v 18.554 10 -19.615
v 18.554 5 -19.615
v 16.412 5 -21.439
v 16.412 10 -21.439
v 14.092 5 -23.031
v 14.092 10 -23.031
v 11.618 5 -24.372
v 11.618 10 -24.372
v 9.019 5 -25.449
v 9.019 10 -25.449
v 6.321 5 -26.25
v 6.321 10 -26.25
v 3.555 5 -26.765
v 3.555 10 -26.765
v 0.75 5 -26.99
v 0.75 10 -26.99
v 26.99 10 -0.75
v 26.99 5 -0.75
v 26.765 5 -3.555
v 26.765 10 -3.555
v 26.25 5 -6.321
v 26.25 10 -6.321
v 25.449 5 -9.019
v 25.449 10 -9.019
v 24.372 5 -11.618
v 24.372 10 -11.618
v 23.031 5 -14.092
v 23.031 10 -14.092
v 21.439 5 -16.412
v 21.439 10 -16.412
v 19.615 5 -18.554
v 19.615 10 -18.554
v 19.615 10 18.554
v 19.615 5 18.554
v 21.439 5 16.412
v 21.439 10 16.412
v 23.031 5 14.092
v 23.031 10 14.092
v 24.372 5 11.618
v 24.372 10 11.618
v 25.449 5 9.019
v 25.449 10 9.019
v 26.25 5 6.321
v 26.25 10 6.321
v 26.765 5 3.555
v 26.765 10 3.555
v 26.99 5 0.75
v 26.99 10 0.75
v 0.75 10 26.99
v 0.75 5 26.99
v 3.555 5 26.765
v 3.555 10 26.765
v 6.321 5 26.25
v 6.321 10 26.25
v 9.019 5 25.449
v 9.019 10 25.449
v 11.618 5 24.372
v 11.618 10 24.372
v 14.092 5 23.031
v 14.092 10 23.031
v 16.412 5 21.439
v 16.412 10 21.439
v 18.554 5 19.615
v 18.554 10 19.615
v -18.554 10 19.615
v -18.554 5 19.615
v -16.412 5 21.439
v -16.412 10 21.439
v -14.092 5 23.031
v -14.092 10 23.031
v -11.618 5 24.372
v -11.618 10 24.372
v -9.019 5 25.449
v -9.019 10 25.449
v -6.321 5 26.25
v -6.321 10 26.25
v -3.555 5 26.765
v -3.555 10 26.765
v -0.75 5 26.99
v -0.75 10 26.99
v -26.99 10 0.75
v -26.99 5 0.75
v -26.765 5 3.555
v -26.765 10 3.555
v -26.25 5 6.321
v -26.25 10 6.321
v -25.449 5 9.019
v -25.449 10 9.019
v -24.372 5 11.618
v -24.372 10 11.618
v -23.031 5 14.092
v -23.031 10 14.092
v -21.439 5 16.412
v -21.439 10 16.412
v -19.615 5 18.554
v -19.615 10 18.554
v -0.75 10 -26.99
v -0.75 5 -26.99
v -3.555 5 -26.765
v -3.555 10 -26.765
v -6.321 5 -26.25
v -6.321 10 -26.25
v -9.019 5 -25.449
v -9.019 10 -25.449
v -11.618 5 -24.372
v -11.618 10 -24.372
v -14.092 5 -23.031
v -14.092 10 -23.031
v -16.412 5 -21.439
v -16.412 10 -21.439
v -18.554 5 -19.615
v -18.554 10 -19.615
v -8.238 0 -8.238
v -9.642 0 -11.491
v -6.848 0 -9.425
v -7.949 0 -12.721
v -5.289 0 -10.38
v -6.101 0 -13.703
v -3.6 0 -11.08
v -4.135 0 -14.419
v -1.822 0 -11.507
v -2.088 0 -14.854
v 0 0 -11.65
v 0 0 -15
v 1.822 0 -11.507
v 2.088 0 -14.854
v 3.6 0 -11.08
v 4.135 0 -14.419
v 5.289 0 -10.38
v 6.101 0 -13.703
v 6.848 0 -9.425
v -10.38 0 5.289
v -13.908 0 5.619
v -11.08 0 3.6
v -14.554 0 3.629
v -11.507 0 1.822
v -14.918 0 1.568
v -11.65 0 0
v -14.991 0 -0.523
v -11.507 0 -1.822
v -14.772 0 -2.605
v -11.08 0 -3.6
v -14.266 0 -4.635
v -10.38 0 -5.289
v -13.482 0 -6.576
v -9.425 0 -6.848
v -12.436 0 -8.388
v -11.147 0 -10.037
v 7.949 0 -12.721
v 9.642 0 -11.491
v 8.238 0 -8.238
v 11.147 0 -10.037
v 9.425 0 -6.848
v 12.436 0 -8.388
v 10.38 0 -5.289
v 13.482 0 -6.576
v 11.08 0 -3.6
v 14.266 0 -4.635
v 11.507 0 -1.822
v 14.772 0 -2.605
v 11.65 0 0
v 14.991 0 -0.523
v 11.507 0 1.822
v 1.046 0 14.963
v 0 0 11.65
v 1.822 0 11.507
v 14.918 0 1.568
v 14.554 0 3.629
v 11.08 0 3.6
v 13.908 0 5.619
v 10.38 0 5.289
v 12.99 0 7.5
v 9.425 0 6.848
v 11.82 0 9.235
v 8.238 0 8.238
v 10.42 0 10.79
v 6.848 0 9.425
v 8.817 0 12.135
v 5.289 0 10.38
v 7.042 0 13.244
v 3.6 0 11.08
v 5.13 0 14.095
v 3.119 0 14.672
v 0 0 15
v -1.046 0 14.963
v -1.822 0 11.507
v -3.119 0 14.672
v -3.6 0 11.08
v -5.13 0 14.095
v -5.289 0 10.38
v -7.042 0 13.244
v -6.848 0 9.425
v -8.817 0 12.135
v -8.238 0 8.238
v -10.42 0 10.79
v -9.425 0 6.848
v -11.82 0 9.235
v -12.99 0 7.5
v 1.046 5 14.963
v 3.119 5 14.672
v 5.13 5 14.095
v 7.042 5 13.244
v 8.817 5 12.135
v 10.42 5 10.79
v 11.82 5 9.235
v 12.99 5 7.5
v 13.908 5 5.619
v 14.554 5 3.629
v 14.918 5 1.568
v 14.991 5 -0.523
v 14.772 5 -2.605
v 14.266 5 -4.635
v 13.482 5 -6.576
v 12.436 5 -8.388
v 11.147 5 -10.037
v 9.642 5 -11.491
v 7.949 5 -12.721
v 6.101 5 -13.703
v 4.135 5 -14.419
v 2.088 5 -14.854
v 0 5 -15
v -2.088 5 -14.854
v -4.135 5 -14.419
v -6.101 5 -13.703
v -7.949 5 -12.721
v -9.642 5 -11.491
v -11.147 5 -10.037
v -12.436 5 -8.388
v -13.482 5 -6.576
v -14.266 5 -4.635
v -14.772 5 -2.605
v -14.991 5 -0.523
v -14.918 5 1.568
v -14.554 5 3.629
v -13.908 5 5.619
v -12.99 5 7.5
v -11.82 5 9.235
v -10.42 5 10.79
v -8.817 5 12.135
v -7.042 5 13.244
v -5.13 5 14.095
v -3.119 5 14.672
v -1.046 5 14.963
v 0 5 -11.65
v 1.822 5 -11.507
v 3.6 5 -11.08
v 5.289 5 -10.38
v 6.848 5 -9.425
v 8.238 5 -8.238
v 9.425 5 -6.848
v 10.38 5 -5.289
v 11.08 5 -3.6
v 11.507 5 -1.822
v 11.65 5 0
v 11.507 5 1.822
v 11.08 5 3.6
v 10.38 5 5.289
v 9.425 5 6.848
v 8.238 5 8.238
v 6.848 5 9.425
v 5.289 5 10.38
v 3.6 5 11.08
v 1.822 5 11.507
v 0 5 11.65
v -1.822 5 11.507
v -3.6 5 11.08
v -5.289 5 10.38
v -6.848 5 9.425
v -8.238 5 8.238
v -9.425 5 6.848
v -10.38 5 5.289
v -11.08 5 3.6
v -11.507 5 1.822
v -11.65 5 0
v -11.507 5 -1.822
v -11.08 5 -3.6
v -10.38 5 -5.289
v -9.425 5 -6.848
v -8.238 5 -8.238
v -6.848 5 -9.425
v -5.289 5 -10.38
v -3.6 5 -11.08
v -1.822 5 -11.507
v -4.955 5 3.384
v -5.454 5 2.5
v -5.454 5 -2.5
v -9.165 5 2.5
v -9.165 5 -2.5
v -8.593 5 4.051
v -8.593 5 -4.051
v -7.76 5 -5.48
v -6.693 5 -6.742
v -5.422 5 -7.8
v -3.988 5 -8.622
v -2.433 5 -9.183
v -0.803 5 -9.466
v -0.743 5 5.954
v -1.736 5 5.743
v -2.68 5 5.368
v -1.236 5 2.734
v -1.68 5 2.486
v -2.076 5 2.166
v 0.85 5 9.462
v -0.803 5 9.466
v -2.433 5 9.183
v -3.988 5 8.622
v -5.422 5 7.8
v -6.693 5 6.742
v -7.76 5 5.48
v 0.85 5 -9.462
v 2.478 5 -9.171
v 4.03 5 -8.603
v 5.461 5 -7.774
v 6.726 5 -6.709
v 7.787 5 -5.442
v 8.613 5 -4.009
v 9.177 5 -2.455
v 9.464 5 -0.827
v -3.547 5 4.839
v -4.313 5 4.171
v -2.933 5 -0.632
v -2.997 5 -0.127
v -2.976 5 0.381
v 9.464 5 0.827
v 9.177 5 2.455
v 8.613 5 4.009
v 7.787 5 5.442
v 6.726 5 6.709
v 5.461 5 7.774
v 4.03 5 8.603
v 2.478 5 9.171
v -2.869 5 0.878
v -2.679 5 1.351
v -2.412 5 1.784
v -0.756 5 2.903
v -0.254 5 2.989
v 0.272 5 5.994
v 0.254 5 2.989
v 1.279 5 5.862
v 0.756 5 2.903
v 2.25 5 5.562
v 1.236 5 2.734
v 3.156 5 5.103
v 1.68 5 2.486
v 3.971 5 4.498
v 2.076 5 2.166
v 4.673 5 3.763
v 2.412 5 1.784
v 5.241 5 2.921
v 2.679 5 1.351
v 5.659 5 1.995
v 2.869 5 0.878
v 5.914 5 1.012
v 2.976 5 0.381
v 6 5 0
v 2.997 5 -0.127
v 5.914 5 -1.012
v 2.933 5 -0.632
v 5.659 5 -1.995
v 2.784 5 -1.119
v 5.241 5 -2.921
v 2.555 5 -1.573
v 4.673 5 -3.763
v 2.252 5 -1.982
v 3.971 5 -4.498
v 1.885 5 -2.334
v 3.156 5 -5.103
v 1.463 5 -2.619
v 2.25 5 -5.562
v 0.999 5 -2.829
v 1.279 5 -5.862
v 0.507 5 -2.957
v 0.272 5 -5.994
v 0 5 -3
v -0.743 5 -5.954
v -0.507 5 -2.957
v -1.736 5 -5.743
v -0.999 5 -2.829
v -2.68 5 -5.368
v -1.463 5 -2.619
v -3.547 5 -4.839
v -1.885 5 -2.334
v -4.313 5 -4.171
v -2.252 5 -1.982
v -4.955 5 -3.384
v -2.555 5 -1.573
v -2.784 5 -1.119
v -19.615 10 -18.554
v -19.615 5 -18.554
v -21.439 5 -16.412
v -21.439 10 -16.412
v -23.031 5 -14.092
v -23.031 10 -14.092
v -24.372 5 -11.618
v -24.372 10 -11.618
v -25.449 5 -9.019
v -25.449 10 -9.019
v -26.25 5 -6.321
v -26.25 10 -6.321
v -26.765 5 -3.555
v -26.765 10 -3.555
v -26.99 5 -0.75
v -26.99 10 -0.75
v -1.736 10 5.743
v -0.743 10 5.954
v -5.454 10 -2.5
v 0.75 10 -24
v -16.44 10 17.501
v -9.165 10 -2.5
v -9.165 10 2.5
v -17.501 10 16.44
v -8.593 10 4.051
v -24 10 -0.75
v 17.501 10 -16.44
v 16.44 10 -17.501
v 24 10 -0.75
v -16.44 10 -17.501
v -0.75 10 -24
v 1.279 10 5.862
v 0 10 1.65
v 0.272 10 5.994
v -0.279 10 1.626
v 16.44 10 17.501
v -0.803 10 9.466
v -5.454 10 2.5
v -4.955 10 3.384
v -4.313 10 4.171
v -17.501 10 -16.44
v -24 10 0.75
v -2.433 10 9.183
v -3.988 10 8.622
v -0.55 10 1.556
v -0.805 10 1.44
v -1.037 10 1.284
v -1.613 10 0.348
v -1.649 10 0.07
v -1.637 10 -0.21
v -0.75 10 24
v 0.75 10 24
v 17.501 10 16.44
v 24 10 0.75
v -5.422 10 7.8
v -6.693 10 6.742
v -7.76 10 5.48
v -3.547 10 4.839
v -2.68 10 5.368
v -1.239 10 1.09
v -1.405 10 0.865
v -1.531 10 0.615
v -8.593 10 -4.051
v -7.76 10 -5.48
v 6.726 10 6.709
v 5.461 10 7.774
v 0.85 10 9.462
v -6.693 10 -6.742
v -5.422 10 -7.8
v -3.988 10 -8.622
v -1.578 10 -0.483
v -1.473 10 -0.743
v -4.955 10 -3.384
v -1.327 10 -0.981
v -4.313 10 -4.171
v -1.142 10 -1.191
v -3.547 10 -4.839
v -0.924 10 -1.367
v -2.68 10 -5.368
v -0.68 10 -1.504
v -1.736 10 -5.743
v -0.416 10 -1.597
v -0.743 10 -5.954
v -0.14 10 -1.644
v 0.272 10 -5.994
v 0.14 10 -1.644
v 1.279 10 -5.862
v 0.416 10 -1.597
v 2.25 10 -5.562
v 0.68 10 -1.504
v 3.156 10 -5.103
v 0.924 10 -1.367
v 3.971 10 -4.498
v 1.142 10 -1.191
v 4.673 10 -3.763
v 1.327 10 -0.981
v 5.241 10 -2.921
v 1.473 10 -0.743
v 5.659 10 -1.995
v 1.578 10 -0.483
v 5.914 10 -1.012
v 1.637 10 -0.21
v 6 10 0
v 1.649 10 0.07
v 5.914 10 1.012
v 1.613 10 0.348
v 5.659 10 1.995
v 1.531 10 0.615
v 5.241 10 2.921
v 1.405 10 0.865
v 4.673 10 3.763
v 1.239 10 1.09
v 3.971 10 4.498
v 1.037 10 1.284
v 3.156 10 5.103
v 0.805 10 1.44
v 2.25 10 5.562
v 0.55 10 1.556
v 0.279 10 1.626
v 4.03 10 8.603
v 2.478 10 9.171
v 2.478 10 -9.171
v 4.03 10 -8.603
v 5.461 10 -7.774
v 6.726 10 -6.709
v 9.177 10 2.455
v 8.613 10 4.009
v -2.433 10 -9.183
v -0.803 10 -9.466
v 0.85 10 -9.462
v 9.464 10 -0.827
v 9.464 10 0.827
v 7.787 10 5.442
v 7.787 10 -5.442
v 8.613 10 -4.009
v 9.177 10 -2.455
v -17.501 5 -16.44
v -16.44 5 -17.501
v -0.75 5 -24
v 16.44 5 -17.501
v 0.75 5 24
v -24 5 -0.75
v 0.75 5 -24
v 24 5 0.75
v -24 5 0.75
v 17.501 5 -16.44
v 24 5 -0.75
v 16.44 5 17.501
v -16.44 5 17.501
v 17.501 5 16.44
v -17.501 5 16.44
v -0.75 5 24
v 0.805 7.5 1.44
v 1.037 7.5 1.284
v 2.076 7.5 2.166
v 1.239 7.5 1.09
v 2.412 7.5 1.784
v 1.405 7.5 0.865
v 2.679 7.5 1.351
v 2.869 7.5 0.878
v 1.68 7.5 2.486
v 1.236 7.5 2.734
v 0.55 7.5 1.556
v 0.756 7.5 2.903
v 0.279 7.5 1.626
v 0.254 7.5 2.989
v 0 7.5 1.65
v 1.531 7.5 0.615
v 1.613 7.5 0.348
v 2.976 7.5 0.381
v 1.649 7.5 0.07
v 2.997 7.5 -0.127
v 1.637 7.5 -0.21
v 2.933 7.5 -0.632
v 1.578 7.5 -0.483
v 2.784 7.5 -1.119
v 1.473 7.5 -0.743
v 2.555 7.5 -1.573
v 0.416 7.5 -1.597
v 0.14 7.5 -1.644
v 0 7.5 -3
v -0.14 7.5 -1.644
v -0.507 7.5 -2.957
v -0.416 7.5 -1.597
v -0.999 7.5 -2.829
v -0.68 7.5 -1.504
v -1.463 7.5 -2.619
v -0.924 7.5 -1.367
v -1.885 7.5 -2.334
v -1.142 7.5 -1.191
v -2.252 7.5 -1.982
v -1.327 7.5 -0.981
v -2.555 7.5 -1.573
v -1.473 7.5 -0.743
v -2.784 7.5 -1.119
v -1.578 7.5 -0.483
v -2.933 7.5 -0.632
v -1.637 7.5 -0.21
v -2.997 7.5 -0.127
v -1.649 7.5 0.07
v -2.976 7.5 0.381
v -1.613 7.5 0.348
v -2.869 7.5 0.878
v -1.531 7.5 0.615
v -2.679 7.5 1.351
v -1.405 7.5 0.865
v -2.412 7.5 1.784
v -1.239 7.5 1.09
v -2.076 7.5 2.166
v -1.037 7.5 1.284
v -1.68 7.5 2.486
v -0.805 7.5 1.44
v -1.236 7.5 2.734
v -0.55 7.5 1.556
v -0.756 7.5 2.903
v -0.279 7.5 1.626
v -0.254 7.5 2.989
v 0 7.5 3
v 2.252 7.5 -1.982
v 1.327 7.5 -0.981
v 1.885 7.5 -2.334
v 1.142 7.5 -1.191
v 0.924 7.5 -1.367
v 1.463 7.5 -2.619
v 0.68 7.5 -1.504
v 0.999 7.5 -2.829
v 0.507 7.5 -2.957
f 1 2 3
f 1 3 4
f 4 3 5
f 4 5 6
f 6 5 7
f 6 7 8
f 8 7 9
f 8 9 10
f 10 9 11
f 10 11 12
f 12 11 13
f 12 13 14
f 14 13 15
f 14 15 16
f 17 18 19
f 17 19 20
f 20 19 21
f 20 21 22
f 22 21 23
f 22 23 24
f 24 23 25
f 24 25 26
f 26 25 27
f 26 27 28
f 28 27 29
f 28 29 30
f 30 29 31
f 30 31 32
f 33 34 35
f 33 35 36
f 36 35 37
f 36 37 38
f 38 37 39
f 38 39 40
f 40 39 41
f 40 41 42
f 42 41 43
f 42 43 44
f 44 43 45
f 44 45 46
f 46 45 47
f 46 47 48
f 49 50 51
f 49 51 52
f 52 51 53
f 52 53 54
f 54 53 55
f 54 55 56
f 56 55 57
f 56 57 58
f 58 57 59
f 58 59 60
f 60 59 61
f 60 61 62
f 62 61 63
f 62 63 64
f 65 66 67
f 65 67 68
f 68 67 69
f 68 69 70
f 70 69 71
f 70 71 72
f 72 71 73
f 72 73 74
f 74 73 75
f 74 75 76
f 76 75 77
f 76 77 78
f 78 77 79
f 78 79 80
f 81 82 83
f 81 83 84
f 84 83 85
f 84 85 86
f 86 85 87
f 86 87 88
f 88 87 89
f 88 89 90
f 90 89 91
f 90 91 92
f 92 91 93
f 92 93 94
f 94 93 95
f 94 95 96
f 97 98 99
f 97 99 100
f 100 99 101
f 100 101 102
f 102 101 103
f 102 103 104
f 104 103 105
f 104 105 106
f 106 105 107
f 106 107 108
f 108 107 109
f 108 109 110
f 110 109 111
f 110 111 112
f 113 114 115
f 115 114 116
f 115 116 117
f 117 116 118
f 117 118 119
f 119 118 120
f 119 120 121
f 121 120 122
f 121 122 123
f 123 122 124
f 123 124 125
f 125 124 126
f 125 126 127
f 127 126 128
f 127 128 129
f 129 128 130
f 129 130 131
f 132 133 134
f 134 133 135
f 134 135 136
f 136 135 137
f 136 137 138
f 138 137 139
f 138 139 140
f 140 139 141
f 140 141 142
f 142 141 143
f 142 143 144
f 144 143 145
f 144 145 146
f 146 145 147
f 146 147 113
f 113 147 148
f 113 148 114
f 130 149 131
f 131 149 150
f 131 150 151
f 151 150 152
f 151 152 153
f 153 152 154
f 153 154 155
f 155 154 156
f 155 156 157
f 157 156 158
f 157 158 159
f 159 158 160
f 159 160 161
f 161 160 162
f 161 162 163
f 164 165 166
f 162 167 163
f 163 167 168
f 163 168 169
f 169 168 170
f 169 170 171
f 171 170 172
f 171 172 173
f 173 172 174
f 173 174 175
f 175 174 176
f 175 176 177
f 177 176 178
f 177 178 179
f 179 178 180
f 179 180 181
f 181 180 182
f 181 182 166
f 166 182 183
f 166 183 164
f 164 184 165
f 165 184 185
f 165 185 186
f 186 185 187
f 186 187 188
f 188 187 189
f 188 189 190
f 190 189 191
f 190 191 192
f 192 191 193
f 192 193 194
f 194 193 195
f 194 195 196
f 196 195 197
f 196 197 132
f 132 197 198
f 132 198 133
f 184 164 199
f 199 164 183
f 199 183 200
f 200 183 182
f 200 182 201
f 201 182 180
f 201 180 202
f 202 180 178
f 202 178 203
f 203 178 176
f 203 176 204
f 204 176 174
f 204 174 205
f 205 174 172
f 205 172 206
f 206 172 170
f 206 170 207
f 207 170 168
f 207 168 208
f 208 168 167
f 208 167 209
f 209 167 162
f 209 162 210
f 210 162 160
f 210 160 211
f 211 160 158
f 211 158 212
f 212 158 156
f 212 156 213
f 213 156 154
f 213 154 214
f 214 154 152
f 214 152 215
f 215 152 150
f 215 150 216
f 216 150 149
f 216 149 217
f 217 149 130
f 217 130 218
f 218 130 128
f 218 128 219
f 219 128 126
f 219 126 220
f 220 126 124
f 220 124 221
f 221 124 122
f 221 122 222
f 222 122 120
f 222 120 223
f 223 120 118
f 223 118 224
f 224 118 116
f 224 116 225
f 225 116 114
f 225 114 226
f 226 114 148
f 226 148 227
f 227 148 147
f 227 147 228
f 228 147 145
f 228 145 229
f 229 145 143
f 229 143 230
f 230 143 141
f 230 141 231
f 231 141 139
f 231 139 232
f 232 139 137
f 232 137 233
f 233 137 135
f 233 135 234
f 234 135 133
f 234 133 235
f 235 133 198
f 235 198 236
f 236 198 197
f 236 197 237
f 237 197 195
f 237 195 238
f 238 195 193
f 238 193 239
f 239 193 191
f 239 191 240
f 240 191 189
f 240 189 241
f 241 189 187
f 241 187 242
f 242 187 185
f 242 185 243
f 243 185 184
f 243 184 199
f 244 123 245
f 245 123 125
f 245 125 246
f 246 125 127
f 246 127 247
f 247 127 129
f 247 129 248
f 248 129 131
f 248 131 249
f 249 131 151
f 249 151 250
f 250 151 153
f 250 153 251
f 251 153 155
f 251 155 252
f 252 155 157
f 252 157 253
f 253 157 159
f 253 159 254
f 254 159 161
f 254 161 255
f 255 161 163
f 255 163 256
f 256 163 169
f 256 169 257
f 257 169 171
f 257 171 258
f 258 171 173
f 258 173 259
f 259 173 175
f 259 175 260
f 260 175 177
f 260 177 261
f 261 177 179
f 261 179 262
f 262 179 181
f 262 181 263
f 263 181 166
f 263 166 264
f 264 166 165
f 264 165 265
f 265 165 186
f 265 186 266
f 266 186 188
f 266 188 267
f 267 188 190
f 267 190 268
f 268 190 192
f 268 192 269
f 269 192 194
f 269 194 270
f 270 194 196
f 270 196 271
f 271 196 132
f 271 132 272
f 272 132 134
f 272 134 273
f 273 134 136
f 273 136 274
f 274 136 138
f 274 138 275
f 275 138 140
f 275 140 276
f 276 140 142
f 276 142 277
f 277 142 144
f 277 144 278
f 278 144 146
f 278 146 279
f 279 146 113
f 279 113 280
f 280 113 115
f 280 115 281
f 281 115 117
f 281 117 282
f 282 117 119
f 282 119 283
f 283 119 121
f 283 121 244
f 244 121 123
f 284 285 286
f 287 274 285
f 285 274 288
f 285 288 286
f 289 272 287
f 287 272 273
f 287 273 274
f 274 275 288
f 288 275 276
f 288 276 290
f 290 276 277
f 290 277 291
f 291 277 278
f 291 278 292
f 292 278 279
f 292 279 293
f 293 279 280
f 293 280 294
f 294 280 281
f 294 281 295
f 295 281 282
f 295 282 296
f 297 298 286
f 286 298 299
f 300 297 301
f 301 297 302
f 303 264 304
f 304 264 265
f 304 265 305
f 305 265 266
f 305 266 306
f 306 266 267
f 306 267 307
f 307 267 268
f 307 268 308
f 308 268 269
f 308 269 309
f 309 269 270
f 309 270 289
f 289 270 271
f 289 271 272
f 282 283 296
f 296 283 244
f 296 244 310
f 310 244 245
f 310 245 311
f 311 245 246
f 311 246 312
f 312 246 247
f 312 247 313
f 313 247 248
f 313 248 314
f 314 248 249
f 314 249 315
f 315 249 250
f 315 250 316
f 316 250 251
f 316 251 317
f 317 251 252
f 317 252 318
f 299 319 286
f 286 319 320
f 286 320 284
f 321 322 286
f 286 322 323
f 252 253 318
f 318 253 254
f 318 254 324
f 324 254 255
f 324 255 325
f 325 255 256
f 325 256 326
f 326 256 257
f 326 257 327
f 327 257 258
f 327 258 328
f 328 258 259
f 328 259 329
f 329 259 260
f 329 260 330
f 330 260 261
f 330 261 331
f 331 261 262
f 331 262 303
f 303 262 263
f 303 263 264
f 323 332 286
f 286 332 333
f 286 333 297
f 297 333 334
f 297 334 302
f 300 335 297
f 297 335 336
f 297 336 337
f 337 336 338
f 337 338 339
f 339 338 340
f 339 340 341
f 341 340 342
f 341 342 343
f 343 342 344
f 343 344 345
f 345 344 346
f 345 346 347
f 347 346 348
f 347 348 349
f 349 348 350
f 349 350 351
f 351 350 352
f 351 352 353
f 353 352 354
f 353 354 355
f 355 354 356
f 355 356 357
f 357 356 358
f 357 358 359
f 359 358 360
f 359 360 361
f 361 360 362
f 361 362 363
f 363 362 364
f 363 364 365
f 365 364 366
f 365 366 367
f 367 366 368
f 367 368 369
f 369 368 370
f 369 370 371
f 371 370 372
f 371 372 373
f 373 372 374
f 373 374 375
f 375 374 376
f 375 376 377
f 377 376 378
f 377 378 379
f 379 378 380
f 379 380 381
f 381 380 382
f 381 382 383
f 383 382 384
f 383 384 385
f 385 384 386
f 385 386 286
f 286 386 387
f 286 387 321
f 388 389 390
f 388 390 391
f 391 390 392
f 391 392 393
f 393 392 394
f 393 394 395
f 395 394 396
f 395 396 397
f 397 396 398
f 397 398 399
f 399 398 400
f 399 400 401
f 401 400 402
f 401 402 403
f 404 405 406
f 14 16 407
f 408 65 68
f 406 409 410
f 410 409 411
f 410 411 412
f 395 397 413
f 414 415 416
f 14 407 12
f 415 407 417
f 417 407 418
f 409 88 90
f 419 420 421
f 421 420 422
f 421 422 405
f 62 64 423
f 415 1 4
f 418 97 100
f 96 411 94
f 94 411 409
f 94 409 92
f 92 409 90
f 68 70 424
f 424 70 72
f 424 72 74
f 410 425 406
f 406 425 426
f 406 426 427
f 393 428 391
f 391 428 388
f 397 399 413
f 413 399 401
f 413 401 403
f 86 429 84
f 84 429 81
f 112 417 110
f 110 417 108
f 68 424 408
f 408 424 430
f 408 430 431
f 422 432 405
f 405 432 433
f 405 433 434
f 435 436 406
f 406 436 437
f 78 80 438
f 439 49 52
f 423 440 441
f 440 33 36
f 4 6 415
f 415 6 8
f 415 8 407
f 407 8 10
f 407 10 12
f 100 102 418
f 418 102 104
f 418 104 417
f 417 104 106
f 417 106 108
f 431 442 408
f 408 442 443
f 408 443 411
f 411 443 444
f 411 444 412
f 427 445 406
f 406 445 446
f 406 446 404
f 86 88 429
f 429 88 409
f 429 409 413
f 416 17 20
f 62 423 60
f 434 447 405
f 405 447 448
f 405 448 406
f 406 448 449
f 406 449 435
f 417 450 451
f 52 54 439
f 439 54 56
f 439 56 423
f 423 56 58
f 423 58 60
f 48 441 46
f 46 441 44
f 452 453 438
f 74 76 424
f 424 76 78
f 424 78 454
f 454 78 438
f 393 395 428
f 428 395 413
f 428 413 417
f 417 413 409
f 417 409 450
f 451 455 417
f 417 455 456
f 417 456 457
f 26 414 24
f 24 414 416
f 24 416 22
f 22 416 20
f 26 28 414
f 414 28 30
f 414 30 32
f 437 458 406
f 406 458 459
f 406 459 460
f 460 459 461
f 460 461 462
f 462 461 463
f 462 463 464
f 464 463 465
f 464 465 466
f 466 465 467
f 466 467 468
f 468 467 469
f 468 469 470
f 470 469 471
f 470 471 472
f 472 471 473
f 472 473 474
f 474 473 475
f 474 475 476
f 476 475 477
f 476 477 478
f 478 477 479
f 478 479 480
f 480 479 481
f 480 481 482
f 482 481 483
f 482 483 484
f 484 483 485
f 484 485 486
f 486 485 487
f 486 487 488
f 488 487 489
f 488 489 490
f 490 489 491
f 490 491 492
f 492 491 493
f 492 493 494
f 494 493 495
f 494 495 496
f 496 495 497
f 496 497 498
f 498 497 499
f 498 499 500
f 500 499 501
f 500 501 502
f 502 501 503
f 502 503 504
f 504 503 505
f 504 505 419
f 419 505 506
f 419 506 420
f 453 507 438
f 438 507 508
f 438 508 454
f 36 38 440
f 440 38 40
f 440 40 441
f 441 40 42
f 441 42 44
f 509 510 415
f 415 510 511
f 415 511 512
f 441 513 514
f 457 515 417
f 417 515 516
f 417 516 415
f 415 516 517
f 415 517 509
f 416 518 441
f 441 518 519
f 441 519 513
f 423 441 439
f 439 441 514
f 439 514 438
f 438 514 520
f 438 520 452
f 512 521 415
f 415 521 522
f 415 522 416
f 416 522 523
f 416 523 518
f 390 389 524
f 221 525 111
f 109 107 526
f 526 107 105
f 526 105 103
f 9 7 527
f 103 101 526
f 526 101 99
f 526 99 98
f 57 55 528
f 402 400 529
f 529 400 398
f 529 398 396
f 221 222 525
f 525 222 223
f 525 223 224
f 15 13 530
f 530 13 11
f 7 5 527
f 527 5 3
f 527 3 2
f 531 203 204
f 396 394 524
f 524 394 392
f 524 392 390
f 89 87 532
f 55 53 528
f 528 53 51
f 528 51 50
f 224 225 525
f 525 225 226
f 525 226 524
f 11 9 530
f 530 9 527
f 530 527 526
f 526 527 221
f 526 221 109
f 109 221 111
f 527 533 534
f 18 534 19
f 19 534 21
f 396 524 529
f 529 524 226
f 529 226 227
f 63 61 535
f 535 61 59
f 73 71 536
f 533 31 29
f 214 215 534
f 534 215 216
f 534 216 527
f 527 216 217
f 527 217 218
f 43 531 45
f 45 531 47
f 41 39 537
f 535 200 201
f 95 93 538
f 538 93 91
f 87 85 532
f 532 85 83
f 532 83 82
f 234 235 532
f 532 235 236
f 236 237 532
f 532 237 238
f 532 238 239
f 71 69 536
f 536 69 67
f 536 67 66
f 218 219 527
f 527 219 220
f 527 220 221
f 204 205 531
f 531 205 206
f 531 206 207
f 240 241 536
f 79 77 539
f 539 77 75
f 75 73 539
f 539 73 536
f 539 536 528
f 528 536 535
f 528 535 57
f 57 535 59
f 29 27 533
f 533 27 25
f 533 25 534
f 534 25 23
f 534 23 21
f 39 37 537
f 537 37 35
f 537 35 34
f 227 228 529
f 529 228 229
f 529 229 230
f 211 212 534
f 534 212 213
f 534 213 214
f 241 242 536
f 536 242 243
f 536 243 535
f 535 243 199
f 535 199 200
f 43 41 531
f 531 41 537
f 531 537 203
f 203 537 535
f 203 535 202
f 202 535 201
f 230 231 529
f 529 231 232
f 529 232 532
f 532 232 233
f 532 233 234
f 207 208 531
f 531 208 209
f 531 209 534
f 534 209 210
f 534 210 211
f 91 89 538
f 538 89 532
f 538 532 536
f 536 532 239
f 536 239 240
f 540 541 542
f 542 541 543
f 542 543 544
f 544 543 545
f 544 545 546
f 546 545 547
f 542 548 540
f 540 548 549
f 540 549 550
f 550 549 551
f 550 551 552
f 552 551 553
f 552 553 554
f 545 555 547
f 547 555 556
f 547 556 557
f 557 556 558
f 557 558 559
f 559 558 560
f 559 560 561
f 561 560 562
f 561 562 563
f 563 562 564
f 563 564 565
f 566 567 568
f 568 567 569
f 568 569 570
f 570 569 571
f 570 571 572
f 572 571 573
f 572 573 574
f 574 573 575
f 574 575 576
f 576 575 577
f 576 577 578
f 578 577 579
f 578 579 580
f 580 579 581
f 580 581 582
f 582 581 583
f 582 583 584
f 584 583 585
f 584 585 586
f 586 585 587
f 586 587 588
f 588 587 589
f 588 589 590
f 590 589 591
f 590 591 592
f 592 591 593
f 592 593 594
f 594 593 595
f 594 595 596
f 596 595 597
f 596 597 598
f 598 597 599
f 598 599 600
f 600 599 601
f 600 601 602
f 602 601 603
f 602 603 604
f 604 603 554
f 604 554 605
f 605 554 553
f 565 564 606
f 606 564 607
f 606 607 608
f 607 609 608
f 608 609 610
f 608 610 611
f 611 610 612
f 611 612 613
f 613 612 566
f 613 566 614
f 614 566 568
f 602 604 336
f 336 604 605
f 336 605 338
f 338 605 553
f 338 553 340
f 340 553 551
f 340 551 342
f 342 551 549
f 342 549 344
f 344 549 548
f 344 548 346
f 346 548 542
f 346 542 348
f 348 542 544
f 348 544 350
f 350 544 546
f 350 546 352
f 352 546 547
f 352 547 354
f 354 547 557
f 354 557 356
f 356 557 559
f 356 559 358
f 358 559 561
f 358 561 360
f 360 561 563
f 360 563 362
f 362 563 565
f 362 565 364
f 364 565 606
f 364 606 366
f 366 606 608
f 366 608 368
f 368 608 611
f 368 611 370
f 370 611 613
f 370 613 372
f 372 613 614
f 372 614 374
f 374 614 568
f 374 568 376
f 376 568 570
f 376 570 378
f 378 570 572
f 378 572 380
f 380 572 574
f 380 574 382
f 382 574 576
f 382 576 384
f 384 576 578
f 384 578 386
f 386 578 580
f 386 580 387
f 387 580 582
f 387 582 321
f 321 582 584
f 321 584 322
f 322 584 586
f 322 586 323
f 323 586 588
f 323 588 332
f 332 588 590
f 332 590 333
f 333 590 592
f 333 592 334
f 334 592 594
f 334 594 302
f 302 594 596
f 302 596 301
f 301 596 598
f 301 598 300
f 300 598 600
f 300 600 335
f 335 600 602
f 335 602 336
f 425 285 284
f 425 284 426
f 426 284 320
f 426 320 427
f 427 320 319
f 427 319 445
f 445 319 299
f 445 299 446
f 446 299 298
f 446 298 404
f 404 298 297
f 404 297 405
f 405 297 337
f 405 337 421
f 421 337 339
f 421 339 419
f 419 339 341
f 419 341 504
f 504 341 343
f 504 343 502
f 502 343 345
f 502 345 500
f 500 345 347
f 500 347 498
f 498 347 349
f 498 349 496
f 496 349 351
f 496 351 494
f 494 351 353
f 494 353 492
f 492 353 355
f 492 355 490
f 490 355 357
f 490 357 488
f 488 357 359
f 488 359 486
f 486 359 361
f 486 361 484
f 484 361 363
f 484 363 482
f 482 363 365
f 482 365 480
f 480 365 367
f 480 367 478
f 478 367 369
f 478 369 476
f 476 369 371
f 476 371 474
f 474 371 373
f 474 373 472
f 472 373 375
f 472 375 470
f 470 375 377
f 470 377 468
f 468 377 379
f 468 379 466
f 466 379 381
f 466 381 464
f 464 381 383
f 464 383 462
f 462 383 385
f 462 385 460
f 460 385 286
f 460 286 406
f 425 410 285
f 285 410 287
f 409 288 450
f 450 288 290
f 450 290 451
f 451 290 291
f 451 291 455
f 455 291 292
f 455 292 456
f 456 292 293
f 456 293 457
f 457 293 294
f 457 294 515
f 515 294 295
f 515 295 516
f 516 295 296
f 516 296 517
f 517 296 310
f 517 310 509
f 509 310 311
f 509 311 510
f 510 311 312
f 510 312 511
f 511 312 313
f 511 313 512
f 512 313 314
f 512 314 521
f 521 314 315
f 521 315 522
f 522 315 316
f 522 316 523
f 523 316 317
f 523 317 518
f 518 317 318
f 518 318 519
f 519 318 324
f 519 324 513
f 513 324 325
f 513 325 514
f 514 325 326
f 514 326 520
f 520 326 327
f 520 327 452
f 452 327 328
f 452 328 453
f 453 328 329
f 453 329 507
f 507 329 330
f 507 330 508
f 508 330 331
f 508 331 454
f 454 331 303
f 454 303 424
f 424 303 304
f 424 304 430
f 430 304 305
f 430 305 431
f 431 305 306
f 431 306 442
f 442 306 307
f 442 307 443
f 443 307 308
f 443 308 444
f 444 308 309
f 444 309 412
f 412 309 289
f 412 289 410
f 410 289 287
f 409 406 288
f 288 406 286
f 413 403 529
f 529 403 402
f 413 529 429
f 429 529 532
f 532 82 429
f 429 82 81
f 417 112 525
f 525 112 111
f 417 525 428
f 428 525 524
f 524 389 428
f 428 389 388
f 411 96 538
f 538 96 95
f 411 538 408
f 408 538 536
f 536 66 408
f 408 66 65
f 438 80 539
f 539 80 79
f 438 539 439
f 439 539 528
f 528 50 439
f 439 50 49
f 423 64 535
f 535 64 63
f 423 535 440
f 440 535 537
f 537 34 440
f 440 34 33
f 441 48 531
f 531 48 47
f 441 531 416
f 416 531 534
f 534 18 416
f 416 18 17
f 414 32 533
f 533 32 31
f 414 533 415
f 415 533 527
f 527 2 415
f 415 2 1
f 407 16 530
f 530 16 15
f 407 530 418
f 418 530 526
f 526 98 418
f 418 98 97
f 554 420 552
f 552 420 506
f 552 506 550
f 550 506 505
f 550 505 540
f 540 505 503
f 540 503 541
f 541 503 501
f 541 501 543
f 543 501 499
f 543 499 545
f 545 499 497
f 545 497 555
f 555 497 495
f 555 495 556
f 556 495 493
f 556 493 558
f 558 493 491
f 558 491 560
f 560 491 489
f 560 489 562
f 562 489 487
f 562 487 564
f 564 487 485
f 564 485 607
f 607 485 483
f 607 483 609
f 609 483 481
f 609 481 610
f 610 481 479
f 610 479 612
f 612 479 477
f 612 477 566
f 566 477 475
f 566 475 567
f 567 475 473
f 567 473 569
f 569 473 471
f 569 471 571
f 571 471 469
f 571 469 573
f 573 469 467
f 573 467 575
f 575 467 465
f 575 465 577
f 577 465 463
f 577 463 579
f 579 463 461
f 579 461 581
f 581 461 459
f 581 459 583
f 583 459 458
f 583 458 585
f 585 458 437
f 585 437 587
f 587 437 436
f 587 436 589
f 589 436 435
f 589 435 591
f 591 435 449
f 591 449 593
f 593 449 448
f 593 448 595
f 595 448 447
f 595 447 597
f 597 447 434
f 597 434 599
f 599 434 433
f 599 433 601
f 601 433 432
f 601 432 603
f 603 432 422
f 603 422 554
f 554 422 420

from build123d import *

# Parameters (mm, degrees)
BOSS_EXTRUDE1_DEPTH = 5
SKETCH2_R           = 27
BOSS_EXTRUDE2_DEPTH = 5
SKETCH4_R           = 3
CUT_EXTRUDE1_DEPTH  = 2.5
CUT_EXTRUDE2_DEPTH  = 39.509739028
SKETCH6_W           = 4.309180809
SKETCH6_H           = 1.5
CUT_EXTRUDE3_DEPTH  = 40.471508712
CIRPATTERN1_COUNT   = 8
SKETCH7_R           = 1.65
CUT_EXTRUDE4_DEPTH  = 40.457255353


with BuildPart() as part:
    # Sketch1 → Boss-Extrude1 (new body)
    with BuildSketch(Plane(origin=(0, 0, 0), x_dir=(1, 0, 0), z_dir=(0, 1, 0))):
        with BuildLine():
            ThreePointArc((0, -15), (15, 0), (0, 15))
            ThreePointArc((0, 15), (-15, 0), (0, -15))
        make_face()
        with BuildLine():
            ThreePointArc((0, -11.65), (11.65, 0), (0, 11.65))
            ThreePointArc((0, 11.65), (-11.65, 0), (0, -11.65))
        make_face(mode=Mode.SUBTRACT)
    extrude(amount=BOSS_EXTRUDE1_DEPTH)

    # Sketch2 → Boss-Extrude2 (add)
    with BuildSketch(Plane(origin=(0, 5, 0), x_dir=(1, 0, 0), z_dir=(0, 1, 0))):
        with Locations(Location((0, 0, 0), (0, 0, 270))):
            Circle(SKETCH2_R)
    extrude(amount=BOSS_EXTRUDE2_DEPTH)

    # Sketch4 → Cut-Extrude1 (cut)
    with BuildSketch(Plane.XZ.offset(-5)):
        with Locations(Location((0, 0, 0), (0, 0, 270))):
            Circle(SKETCH4_R)
    extrude(amount=-CUT_EXTRUDE1_DEPTH, mode=Mode.SUBTRACT)

    # Sketch5 → Cut-Extrude2 (cut, through all)
    with BuildSketch(Plane.XZ.offset(-5)):
        with BuildLine():
            Line((-9.16515139, 2.5), (-5.454356057, 2.5))
            ThreePointArc((-5.454356057, 2.5), (6, 0), (-5.454356057, -2.5))
            Line((-5.454356057, -2.5), (-9.16515139, -2.5))
            ThreePointArc((-9.16515139, -2.5), (9.5, 0), (-9.16515139, 2.5))
        make_face()
    extrude(amount=-CUT_EXTRUDE2_DEPTH, mode=Mode.SUBTRACT)

    # Sketch6 → Cut-Extrude3 (cut, through all)
    with BuildSketch(Plane(origin=(0, 10, 0), x_dir=(1, 0, 0), z_dir=(0, 1, 0))):
        with Locations((-26.154590404, 0)):
            Rectangle(SKETCH6_W, SKETCH6_H)
    cut_extrude3 = extrude(amount=-CUT_EXTRUDE3_DEPTH, mode=Mode.SUBTRACT)

    # CirPattern1: Cut-Extrude3 ×8 about axis
    cirpattern1_axis = Axis((0, 0, 0), (0, 1, 0))
    for i in range(1, CIRPATTERN1_COUNT):
        add(cut_extrude3.rotate(cirpattern1_axis, i * 360 / CIRPATTERN1_COUNT), mode=Mode.SUBTRACT)

    # Sketch7 → Cut-Extrude4 (cut, through all)
    with BuildSketch(Plane(origin=(0, 10, 0), x_dir=(1, 0, 0), z_dir=(0, 1, 0))):
        with Locations(Location((0, 0, 0), (0, 0, 270))):
            Circle(SKETCH7_R)
    extrude(amount=-CUT_EXTRUDE4_DEPTH, mode=Mode.SUBTRACT)


solid = part.part
